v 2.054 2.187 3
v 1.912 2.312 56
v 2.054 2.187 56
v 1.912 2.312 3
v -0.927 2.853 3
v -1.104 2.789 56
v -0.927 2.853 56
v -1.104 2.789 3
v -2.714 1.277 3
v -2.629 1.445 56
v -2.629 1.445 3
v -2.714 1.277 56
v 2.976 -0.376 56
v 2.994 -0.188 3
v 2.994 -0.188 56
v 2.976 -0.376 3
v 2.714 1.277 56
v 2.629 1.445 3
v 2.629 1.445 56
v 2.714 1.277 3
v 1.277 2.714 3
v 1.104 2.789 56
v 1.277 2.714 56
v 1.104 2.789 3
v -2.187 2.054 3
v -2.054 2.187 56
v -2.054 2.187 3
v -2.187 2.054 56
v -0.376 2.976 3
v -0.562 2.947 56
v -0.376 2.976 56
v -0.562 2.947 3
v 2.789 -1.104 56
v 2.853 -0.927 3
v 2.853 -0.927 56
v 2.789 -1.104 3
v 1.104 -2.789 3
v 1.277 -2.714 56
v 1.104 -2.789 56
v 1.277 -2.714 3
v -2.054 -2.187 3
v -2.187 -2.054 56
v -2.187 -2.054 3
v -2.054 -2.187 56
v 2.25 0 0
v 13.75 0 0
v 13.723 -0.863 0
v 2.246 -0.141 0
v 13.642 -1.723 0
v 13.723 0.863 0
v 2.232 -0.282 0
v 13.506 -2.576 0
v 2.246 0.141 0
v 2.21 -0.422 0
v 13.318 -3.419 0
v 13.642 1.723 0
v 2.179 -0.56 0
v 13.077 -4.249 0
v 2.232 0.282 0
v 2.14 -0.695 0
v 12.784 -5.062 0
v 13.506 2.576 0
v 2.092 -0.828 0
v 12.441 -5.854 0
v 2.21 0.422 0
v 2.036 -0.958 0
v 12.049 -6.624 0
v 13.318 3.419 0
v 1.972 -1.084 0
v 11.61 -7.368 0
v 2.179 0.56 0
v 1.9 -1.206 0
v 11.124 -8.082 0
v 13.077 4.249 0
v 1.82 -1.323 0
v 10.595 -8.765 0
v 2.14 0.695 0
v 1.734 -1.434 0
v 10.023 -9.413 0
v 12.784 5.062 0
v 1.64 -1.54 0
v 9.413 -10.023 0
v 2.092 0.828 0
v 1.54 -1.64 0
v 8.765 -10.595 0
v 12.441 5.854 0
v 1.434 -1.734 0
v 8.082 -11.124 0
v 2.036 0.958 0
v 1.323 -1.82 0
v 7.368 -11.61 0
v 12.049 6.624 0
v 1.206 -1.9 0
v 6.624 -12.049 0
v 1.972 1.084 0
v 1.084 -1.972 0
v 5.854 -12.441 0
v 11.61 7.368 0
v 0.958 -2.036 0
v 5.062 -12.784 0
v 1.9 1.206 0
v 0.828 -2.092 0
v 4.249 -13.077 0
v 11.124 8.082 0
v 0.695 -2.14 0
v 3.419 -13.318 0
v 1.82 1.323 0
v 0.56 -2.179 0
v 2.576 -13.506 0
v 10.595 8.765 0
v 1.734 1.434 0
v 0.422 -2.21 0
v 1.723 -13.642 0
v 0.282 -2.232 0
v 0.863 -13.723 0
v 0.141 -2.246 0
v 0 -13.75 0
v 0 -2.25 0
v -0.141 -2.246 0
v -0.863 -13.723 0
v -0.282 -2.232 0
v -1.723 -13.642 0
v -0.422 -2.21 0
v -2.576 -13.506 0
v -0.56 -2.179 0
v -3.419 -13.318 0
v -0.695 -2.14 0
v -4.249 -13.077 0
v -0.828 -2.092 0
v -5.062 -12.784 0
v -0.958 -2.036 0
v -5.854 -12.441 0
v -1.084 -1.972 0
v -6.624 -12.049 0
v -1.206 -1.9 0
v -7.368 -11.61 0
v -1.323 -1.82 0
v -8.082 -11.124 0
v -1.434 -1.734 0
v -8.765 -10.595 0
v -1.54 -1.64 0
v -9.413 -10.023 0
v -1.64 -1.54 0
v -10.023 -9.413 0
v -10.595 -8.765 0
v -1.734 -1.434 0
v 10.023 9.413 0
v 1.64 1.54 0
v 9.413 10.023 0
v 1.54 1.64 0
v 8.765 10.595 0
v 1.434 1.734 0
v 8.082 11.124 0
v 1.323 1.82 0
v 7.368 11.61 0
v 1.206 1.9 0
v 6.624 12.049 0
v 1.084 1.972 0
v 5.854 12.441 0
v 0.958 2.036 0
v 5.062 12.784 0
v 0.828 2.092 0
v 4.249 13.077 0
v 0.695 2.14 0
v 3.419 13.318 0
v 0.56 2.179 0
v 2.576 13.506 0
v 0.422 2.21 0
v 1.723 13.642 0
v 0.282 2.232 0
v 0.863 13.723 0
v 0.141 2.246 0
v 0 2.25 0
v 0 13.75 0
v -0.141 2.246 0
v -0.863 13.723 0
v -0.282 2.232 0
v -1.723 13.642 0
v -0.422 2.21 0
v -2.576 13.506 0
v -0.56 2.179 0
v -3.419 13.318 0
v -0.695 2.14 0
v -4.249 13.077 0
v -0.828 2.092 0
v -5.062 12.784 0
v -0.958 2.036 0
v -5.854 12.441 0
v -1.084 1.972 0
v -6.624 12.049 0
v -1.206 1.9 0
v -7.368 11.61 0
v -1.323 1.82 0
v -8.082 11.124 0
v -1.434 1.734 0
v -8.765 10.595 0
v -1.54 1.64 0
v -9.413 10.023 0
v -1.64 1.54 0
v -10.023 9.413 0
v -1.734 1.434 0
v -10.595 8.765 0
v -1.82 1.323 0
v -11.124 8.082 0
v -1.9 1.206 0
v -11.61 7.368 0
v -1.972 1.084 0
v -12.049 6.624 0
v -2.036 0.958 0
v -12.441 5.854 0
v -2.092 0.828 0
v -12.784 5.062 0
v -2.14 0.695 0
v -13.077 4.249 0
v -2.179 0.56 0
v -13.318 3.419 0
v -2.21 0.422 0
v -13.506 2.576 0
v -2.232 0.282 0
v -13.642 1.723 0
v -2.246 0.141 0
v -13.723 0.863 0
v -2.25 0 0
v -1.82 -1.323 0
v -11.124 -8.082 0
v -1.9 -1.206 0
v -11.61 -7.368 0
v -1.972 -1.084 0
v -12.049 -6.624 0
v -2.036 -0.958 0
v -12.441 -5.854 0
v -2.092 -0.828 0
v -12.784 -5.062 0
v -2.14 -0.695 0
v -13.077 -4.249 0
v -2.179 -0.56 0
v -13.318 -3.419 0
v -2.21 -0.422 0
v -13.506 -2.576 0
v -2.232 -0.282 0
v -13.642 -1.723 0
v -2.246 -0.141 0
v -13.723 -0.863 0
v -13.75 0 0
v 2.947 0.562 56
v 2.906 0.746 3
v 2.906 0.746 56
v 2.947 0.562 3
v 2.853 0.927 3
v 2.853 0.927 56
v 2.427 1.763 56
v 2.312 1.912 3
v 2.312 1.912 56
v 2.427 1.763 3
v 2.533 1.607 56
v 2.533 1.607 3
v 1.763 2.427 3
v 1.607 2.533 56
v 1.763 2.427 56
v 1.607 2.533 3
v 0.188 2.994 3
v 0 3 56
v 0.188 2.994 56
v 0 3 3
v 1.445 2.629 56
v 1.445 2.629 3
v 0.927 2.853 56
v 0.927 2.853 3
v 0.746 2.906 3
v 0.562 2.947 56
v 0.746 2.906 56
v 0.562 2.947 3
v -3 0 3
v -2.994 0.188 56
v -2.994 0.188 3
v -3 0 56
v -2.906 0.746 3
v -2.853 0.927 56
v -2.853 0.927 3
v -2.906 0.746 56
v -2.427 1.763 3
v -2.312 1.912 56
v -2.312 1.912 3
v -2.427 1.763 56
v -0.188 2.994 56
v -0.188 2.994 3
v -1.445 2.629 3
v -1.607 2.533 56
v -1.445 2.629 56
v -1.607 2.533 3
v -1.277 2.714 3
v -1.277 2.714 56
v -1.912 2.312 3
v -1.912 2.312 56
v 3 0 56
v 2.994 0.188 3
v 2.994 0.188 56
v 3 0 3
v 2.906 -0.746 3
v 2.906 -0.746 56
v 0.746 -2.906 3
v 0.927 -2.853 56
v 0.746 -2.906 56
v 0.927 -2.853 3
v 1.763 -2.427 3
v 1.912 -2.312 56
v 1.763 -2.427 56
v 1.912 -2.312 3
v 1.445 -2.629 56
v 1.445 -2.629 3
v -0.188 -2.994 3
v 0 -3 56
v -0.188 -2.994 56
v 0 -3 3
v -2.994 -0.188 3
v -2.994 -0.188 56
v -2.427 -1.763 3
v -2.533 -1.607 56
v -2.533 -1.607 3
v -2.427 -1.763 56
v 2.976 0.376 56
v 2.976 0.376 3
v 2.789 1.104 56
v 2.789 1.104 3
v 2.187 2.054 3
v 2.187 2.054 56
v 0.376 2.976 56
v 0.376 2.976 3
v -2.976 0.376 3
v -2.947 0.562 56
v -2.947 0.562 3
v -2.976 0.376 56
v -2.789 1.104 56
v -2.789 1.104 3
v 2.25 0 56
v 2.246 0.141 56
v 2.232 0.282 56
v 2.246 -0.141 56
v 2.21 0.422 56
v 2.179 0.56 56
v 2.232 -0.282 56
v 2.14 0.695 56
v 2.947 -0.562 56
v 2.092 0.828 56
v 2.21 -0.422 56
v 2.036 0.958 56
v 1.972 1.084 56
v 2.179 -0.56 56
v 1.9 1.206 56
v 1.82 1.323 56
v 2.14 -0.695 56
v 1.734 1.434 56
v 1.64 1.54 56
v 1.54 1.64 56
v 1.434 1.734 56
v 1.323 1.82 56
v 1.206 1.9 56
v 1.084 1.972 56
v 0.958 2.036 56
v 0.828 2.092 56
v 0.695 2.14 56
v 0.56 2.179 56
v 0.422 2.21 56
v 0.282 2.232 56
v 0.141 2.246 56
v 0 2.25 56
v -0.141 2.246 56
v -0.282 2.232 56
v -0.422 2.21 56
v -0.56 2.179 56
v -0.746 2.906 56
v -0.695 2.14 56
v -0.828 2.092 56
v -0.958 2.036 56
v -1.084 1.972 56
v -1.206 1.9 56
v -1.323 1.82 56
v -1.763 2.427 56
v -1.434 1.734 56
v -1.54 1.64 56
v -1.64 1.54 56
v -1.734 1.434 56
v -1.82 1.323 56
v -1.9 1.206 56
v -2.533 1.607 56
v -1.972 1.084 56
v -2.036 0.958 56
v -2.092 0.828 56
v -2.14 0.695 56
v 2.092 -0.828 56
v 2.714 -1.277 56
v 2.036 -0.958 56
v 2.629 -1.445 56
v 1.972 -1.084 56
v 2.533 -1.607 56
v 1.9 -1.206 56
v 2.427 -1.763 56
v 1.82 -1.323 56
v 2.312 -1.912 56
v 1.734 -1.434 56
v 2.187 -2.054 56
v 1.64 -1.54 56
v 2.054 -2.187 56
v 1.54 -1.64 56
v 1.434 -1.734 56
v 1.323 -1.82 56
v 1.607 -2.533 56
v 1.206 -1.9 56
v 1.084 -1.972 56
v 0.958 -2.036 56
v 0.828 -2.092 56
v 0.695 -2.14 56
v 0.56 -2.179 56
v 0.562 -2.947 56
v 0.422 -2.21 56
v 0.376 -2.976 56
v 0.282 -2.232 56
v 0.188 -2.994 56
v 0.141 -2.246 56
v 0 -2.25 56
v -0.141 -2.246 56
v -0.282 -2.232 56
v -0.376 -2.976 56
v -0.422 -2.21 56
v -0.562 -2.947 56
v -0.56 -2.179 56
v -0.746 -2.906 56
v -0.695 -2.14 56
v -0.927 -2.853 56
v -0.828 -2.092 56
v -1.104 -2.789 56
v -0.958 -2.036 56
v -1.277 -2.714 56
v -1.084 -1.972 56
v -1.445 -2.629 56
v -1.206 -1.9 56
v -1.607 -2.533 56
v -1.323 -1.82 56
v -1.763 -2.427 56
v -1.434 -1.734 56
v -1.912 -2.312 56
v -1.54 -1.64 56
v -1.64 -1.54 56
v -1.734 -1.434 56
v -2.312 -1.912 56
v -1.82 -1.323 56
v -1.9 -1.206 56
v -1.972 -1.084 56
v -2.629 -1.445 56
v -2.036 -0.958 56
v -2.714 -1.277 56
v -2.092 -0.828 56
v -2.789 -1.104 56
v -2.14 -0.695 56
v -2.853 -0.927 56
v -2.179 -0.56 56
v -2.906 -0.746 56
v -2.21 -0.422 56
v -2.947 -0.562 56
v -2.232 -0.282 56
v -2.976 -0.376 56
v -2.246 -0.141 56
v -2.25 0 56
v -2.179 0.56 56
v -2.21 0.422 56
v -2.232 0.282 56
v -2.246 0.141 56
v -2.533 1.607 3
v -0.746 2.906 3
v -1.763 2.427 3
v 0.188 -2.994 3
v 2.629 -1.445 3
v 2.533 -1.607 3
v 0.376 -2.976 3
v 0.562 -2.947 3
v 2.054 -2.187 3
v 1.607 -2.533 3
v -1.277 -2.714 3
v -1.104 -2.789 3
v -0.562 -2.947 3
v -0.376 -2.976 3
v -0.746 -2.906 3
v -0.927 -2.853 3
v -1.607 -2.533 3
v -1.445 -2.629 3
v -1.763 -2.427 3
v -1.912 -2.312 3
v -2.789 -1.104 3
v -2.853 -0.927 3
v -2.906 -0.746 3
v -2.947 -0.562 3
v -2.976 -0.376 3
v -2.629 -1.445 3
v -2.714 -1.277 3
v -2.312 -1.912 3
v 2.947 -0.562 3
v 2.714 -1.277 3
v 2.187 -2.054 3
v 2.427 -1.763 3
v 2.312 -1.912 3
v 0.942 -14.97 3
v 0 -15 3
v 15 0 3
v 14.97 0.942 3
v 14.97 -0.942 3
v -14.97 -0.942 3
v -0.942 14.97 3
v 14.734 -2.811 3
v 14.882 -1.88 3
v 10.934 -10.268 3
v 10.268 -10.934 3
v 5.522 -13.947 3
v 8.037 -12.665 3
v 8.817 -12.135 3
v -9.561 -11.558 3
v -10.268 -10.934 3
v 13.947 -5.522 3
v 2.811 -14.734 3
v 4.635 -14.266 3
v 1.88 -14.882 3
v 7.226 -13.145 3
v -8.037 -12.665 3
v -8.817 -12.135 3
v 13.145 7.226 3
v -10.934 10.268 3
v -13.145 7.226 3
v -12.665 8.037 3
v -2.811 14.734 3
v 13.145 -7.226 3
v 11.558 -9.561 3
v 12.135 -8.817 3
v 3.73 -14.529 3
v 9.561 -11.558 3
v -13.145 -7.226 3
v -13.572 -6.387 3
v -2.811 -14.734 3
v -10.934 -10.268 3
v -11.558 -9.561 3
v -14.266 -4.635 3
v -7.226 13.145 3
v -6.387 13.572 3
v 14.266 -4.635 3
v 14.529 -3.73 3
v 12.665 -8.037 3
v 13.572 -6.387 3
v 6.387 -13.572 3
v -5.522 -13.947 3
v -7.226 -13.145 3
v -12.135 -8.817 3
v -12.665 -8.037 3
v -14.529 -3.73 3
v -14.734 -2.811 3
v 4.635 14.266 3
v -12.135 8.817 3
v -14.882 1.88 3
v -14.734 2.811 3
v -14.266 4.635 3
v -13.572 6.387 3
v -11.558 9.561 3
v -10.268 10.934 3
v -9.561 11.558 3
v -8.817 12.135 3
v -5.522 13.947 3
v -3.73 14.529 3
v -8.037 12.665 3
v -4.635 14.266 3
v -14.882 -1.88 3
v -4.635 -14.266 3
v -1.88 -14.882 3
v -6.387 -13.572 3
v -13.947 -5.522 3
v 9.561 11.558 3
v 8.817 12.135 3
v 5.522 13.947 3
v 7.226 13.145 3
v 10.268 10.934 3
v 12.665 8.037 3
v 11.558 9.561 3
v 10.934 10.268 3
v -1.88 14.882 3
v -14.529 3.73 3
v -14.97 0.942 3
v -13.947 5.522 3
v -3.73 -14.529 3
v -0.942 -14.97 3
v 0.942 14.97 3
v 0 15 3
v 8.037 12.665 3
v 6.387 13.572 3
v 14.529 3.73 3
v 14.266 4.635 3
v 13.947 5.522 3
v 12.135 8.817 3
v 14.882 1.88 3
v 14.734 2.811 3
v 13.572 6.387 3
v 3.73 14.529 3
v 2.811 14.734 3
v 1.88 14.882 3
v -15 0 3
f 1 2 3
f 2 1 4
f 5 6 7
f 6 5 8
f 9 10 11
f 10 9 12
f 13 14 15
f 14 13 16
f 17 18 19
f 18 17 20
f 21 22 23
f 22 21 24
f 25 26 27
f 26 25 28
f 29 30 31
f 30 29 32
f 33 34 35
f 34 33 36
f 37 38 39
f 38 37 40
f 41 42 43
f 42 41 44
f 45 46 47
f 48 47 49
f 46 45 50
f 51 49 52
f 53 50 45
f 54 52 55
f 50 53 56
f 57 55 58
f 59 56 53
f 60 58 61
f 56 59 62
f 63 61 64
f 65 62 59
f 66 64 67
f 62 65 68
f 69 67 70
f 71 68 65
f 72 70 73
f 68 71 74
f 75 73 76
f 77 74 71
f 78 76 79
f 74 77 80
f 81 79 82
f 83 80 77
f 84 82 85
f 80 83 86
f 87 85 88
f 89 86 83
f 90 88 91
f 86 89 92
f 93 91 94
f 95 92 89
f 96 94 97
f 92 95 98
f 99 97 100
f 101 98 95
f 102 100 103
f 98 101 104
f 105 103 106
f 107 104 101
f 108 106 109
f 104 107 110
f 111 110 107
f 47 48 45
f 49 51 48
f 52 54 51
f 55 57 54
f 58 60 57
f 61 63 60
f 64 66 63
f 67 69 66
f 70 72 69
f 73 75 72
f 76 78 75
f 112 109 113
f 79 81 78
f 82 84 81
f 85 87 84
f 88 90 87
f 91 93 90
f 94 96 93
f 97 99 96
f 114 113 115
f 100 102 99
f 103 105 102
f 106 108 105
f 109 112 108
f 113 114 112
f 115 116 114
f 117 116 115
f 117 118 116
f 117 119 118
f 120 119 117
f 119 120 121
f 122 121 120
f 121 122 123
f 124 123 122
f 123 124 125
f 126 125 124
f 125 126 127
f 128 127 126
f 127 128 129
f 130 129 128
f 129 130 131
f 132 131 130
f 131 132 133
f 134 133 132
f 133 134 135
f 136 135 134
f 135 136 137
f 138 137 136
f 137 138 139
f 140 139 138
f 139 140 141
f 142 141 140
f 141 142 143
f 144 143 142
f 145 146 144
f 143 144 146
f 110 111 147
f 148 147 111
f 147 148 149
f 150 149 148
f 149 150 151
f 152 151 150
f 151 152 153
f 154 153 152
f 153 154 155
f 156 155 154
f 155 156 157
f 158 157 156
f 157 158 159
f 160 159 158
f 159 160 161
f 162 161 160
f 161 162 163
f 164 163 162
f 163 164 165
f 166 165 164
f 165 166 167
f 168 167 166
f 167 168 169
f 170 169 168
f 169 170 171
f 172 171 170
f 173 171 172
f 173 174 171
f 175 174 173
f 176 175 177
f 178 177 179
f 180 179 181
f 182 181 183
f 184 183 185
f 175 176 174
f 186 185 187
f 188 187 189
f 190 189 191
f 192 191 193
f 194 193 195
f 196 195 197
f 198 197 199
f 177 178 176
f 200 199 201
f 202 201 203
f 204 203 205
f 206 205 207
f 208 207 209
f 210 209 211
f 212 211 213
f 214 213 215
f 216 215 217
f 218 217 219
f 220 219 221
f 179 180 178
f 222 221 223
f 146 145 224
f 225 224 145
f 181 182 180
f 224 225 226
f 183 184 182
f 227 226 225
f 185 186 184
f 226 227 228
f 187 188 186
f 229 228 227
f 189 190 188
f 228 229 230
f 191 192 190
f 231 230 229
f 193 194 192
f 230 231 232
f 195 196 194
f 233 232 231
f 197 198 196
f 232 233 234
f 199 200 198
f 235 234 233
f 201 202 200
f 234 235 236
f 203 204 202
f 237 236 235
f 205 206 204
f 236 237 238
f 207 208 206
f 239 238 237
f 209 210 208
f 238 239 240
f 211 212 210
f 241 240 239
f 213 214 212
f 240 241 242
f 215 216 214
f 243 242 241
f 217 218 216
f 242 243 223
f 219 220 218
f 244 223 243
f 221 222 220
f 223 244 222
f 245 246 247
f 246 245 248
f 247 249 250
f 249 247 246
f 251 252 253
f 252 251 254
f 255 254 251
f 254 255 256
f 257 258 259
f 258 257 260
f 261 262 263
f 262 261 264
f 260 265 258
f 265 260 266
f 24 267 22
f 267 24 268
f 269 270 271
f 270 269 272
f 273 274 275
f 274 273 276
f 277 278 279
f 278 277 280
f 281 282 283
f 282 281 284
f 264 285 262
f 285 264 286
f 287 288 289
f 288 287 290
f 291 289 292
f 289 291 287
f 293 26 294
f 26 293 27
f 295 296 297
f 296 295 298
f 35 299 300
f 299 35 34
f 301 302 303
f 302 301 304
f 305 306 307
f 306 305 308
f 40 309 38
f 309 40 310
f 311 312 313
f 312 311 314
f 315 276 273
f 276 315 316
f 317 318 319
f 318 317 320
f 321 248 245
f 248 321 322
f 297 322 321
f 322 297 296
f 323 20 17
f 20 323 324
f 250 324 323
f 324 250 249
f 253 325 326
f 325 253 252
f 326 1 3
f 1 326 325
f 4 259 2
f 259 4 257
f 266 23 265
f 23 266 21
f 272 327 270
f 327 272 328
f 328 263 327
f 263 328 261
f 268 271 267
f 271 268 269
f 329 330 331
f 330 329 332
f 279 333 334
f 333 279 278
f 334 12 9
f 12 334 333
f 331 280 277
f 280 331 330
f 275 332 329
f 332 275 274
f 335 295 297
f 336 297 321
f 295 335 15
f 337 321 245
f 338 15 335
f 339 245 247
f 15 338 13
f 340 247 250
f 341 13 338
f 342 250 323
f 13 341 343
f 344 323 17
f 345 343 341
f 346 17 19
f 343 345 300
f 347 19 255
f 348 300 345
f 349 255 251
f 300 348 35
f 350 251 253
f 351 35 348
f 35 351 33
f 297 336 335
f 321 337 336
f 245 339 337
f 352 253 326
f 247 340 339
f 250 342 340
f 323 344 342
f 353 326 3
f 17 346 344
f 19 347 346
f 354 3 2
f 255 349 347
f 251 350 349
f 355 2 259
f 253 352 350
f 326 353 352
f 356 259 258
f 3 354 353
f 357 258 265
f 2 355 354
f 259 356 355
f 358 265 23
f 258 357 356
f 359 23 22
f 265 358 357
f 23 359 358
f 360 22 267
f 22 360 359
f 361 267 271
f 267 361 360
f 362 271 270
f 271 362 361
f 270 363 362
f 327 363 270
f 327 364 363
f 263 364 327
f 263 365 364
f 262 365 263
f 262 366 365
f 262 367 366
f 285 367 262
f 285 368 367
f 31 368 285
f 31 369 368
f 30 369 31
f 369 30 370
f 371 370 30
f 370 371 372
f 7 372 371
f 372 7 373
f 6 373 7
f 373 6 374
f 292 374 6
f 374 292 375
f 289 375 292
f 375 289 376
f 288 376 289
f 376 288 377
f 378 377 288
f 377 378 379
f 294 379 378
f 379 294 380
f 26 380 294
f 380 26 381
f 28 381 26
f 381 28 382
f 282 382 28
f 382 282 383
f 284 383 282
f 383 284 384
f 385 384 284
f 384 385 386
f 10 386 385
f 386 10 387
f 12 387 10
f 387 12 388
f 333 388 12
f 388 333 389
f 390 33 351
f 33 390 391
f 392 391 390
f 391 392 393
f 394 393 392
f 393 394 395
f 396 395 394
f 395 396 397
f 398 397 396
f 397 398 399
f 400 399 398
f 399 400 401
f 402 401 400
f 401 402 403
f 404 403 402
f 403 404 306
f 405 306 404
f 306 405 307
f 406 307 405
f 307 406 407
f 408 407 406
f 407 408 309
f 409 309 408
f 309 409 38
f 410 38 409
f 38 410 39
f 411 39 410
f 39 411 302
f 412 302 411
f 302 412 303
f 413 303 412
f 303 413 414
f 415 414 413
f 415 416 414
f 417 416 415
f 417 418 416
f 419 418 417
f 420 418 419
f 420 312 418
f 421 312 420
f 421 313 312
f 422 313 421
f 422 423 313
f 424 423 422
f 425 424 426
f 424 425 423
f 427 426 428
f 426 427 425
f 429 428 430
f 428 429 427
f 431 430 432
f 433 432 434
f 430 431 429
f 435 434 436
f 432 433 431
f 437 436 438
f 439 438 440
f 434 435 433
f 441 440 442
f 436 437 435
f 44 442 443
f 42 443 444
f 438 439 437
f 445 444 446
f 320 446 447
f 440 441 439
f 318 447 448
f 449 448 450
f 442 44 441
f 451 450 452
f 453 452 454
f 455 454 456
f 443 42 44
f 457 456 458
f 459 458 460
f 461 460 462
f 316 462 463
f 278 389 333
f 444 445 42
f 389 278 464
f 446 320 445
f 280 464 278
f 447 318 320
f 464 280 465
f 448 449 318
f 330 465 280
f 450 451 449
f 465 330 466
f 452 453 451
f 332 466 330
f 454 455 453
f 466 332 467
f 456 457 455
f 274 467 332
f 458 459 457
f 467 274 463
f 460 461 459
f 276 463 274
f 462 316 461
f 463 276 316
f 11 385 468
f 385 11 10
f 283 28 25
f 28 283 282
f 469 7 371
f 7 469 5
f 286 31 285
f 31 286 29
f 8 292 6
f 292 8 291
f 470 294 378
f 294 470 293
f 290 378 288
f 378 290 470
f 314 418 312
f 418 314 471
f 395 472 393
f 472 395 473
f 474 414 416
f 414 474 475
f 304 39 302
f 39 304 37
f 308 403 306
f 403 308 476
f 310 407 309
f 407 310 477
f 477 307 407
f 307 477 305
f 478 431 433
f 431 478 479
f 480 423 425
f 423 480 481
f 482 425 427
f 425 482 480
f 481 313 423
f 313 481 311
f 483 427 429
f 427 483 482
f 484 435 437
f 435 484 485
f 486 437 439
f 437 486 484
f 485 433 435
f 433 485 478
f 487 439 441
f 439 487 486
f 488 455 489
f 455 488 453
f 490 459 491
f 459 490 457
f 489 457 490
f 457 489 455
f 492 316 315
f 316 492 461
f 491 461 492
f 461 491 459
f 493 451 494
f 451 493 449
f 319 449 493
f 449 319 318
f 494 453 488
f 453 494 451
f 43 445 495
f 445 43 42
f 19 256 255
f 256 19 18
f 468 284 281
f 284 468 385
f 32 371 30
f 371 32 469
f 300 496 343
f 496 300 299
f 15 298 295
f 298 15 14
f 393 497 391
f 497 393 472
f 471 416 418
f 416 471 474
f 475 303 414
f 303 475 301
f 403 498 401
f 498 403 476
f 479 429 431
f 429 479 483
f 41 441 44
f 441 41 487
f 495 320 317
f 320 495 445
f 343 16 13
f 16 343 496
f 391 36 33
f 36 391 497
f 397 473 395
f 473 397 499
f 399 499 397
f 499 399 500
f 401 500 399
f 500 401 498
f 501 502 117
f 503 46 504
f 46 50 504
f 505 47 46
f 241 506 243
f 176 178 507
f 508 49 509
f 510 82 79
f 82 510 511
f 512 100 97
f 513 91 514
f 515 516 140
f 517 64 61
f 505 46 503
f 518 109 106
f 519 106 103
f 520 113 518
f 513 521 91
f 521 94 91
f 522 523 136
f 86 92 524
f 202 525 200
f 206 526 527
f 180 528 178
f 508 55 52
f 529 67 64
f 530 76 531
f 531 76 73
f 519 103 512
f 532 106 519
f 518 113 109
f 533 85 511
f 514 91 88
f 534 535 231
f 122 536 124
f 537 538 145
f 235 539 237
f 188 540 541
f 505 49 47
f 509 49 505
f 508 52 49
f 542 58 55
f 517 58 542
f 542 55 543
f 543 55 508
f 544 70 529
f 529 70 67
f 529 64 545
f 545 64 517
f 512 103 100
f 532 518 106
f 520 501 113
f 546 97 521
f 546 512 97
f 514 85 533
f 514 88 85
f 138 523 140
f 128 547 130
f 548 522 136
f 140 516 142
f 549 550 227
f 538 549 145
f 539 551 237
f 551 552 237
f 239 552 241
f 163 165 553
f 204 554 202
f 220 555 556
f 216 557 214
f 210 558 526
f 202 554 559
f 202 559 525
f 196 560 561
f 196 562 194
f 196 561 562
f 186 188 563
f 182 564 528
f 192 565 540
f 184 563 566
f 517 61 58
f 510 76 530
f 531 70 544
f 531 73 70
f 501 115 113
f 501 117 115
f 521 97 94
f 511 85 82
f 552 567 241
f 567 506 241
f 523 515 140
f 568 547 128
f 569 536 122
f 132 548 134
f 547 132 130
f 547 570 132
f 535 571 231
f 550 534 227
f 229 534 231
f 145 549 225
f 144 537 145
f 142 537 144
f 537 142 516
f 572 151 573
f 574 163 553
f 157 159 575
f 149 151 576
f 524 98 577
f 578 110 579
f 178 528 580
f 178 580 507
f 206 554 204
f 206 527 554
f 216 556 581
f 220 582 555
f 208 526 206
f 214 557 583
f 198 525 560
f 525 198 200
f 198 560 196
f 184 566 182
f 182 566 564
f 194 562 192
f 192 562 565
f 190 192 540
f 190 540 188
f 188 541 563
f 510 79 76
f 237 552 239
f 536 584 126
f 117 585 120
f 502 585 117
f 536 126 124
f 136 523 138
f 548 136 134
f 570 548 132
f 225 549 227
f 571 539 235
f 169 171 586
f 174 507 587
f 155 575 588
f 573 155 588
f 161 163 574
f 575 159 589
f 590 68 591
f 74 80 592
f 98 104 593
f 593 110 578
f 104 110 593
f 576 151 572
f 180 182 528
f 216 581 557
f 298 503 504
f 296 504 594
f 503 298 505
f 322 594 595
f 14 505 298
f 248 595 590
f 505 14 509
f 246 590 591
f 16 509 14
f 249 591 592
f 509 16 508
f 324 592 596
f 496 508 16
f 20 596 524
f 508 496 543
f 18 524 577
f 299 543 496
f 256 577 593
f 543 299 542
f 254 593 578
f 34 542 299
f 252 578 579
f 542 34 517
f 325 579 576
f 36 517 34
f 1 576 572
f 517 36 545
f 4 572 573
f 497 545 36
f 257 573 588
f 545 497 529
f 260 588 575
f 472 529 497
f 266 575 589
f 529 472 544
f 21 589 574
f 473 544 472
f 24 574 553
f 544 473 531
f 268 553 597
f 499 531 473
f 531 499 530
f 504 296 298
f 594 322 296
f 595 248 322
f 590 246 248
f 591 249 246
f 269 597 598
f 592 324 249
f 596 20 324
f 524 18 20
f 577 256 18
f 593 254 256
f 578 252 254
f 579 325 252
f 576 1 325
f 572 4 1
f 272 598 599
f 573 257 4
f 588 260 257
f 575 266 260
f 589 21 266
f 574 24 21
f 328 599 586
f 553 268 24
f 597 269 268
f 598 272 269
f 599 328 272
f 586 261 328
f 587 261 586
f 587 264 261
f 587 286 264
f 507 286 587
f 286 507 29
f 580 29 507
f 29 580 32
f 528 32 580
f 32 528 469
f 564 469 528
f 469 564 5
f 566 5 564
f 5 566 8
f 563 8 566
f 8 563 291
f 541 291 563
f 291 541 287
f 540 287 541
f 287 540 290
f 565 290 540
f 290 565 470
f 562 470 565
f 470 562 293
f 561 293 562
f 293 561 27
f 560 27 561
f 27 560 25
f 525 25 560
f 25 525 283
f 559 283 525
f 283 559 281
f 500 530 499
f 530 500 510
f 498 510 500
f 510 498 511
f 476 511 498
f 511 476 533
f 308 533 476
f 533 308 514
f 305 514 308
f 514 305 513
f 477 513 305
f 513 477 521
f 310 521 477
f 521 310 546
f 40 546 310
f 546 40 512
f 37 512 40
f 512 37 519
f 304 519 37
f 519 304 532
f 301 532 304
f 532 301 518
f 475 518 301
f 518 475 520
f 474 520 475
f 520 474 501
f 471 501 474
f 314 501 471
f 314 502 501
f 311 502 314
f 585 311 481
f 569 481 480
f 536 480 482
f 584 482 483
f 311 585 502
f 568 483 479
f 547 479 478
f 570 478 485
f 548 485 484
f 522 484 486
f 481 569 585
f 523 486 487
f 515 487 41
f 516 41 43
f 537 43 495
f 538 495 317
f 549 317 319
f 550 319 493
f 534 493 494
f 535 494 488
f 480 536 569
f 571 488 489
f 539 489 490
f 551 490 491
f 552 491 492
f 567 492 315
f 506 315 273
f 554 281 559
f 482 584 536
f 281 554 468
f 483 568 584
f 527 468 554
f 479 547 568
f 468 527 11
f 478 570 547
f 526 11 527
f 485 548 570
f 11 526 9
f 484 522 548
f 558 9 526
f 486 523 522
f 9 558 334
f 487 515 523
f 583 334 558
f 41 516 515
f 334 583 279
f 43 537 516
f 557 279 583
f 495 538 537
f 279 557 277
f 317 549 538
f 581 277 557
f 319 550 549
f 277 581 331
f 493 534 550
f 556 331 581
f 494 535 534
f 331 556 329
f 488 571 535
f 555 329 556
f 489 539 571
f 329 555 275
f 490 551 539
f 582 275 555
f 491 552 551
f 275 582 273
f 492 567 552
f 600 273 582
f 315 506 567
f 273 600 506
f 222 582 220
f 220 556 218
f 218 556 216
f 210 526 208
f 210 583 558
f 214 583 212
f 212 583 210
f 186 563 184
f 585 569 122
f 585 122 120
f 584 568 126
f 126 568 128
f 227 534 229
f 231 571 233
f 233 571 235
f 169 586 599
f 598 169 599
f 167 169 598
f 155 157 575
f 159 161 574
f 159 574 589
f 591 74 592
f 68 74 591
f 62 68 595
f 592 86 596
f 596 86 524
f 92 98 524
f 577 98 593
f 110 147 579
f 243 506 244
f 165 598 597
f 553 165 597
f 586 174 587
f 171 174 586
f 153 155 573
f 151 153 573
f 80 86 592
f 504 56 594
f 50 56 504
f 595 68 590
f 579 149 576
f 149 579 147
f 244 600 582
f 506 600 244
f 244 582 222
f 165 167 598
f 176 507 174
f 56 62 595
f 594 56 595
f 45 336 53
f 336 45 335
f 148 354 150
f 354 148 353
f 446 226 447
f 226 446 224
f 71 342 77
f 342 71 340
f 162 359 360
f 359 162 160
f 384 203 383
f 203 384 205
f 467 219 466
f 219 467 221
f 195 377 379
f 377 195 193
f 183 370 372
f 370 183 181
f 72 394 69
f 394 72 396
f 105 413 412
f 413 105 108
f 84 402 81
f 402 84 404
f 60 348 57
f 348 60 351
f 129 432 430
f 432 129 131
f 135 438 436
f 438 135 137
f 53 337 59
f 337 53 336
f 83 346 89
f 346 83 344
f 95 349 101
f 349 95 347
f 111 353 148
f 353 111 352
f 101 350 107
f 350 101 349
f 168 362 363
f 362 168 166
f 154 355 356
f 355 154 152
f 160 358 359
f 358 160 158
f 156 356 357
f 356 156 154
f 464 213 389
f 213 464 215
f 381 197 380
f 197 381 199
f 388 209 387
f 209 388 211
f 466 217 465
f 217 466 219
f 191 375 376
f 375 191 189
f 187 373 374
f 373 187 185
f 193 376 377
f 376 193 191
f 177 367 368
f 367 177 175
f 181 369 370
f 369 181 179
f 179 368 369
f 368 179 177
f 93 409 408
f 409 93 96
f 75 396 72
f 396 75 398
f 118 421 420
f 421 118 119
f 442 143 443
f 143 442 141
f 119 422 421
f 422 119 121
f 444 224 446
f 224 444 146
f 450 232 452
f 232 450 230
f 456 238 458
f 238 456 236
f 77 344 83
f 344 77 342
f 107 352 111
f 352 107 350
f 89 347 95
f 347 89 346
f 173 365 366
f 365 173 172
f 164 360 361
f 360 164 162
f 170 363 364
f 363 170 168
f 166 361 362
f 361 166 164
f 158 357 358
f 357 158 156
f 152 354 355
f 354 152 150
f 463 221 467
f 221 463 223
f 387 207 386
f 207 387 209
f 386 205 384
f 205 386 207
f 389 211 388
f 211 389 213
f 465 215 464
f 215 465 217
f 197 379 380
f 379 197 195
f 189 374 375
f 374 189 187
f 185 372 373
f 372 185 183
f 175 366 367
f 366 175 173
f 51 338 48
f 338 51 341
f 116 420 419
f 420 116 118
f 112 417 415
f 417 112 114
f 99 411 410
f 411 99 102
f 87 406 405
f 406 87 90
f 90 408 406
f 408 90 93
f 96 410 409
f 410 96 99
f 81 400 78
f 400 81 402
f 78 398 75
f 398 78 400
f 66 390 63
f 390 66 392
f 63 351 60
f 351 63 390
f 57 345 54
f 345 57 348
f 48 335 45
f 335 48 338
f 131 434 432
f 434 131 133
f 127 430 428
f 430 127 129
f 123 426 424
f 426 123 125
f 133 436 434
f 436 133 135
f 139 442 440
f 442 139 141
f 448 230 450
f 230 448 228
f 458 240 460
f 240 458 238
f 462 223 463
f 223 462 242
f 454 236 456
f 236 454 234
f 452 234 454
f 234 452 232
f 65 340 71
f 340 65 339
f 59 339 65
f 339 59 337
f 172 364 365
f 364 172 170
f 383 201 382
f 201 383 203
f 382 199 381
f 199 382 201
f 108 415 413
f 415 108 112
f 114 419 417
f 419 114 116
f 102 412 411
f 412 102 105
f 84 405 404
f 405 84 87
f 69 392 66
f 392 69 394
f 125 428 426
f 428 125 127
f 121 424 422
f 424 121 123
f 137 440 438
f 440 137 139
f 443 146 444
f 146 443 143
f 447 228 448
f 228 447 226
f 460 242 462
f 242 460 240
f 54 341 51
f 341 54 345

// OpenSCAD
/*  
**  Name:  IKEA Lack Filament Port_3d_model
**  Author:  Chris Benson  @TheExtruder
**  Created:  1/22/2017
*/

totalHeight = 56;
baseDiameter = 30;
baseChamferDiameter = 27.5;
baseHeight = 3;
plugOD = 6;
plugID = 4.5;

$fn = 100;
difference(){
    union(){
        cylinder(totalHeight, d=plugOD, false);
        cylinder(baseHeight, d1=baseChamferDiameter, d2=baseDiameter, false);
    }
    cylinder(totalHeight, d=plugID, false);
}
